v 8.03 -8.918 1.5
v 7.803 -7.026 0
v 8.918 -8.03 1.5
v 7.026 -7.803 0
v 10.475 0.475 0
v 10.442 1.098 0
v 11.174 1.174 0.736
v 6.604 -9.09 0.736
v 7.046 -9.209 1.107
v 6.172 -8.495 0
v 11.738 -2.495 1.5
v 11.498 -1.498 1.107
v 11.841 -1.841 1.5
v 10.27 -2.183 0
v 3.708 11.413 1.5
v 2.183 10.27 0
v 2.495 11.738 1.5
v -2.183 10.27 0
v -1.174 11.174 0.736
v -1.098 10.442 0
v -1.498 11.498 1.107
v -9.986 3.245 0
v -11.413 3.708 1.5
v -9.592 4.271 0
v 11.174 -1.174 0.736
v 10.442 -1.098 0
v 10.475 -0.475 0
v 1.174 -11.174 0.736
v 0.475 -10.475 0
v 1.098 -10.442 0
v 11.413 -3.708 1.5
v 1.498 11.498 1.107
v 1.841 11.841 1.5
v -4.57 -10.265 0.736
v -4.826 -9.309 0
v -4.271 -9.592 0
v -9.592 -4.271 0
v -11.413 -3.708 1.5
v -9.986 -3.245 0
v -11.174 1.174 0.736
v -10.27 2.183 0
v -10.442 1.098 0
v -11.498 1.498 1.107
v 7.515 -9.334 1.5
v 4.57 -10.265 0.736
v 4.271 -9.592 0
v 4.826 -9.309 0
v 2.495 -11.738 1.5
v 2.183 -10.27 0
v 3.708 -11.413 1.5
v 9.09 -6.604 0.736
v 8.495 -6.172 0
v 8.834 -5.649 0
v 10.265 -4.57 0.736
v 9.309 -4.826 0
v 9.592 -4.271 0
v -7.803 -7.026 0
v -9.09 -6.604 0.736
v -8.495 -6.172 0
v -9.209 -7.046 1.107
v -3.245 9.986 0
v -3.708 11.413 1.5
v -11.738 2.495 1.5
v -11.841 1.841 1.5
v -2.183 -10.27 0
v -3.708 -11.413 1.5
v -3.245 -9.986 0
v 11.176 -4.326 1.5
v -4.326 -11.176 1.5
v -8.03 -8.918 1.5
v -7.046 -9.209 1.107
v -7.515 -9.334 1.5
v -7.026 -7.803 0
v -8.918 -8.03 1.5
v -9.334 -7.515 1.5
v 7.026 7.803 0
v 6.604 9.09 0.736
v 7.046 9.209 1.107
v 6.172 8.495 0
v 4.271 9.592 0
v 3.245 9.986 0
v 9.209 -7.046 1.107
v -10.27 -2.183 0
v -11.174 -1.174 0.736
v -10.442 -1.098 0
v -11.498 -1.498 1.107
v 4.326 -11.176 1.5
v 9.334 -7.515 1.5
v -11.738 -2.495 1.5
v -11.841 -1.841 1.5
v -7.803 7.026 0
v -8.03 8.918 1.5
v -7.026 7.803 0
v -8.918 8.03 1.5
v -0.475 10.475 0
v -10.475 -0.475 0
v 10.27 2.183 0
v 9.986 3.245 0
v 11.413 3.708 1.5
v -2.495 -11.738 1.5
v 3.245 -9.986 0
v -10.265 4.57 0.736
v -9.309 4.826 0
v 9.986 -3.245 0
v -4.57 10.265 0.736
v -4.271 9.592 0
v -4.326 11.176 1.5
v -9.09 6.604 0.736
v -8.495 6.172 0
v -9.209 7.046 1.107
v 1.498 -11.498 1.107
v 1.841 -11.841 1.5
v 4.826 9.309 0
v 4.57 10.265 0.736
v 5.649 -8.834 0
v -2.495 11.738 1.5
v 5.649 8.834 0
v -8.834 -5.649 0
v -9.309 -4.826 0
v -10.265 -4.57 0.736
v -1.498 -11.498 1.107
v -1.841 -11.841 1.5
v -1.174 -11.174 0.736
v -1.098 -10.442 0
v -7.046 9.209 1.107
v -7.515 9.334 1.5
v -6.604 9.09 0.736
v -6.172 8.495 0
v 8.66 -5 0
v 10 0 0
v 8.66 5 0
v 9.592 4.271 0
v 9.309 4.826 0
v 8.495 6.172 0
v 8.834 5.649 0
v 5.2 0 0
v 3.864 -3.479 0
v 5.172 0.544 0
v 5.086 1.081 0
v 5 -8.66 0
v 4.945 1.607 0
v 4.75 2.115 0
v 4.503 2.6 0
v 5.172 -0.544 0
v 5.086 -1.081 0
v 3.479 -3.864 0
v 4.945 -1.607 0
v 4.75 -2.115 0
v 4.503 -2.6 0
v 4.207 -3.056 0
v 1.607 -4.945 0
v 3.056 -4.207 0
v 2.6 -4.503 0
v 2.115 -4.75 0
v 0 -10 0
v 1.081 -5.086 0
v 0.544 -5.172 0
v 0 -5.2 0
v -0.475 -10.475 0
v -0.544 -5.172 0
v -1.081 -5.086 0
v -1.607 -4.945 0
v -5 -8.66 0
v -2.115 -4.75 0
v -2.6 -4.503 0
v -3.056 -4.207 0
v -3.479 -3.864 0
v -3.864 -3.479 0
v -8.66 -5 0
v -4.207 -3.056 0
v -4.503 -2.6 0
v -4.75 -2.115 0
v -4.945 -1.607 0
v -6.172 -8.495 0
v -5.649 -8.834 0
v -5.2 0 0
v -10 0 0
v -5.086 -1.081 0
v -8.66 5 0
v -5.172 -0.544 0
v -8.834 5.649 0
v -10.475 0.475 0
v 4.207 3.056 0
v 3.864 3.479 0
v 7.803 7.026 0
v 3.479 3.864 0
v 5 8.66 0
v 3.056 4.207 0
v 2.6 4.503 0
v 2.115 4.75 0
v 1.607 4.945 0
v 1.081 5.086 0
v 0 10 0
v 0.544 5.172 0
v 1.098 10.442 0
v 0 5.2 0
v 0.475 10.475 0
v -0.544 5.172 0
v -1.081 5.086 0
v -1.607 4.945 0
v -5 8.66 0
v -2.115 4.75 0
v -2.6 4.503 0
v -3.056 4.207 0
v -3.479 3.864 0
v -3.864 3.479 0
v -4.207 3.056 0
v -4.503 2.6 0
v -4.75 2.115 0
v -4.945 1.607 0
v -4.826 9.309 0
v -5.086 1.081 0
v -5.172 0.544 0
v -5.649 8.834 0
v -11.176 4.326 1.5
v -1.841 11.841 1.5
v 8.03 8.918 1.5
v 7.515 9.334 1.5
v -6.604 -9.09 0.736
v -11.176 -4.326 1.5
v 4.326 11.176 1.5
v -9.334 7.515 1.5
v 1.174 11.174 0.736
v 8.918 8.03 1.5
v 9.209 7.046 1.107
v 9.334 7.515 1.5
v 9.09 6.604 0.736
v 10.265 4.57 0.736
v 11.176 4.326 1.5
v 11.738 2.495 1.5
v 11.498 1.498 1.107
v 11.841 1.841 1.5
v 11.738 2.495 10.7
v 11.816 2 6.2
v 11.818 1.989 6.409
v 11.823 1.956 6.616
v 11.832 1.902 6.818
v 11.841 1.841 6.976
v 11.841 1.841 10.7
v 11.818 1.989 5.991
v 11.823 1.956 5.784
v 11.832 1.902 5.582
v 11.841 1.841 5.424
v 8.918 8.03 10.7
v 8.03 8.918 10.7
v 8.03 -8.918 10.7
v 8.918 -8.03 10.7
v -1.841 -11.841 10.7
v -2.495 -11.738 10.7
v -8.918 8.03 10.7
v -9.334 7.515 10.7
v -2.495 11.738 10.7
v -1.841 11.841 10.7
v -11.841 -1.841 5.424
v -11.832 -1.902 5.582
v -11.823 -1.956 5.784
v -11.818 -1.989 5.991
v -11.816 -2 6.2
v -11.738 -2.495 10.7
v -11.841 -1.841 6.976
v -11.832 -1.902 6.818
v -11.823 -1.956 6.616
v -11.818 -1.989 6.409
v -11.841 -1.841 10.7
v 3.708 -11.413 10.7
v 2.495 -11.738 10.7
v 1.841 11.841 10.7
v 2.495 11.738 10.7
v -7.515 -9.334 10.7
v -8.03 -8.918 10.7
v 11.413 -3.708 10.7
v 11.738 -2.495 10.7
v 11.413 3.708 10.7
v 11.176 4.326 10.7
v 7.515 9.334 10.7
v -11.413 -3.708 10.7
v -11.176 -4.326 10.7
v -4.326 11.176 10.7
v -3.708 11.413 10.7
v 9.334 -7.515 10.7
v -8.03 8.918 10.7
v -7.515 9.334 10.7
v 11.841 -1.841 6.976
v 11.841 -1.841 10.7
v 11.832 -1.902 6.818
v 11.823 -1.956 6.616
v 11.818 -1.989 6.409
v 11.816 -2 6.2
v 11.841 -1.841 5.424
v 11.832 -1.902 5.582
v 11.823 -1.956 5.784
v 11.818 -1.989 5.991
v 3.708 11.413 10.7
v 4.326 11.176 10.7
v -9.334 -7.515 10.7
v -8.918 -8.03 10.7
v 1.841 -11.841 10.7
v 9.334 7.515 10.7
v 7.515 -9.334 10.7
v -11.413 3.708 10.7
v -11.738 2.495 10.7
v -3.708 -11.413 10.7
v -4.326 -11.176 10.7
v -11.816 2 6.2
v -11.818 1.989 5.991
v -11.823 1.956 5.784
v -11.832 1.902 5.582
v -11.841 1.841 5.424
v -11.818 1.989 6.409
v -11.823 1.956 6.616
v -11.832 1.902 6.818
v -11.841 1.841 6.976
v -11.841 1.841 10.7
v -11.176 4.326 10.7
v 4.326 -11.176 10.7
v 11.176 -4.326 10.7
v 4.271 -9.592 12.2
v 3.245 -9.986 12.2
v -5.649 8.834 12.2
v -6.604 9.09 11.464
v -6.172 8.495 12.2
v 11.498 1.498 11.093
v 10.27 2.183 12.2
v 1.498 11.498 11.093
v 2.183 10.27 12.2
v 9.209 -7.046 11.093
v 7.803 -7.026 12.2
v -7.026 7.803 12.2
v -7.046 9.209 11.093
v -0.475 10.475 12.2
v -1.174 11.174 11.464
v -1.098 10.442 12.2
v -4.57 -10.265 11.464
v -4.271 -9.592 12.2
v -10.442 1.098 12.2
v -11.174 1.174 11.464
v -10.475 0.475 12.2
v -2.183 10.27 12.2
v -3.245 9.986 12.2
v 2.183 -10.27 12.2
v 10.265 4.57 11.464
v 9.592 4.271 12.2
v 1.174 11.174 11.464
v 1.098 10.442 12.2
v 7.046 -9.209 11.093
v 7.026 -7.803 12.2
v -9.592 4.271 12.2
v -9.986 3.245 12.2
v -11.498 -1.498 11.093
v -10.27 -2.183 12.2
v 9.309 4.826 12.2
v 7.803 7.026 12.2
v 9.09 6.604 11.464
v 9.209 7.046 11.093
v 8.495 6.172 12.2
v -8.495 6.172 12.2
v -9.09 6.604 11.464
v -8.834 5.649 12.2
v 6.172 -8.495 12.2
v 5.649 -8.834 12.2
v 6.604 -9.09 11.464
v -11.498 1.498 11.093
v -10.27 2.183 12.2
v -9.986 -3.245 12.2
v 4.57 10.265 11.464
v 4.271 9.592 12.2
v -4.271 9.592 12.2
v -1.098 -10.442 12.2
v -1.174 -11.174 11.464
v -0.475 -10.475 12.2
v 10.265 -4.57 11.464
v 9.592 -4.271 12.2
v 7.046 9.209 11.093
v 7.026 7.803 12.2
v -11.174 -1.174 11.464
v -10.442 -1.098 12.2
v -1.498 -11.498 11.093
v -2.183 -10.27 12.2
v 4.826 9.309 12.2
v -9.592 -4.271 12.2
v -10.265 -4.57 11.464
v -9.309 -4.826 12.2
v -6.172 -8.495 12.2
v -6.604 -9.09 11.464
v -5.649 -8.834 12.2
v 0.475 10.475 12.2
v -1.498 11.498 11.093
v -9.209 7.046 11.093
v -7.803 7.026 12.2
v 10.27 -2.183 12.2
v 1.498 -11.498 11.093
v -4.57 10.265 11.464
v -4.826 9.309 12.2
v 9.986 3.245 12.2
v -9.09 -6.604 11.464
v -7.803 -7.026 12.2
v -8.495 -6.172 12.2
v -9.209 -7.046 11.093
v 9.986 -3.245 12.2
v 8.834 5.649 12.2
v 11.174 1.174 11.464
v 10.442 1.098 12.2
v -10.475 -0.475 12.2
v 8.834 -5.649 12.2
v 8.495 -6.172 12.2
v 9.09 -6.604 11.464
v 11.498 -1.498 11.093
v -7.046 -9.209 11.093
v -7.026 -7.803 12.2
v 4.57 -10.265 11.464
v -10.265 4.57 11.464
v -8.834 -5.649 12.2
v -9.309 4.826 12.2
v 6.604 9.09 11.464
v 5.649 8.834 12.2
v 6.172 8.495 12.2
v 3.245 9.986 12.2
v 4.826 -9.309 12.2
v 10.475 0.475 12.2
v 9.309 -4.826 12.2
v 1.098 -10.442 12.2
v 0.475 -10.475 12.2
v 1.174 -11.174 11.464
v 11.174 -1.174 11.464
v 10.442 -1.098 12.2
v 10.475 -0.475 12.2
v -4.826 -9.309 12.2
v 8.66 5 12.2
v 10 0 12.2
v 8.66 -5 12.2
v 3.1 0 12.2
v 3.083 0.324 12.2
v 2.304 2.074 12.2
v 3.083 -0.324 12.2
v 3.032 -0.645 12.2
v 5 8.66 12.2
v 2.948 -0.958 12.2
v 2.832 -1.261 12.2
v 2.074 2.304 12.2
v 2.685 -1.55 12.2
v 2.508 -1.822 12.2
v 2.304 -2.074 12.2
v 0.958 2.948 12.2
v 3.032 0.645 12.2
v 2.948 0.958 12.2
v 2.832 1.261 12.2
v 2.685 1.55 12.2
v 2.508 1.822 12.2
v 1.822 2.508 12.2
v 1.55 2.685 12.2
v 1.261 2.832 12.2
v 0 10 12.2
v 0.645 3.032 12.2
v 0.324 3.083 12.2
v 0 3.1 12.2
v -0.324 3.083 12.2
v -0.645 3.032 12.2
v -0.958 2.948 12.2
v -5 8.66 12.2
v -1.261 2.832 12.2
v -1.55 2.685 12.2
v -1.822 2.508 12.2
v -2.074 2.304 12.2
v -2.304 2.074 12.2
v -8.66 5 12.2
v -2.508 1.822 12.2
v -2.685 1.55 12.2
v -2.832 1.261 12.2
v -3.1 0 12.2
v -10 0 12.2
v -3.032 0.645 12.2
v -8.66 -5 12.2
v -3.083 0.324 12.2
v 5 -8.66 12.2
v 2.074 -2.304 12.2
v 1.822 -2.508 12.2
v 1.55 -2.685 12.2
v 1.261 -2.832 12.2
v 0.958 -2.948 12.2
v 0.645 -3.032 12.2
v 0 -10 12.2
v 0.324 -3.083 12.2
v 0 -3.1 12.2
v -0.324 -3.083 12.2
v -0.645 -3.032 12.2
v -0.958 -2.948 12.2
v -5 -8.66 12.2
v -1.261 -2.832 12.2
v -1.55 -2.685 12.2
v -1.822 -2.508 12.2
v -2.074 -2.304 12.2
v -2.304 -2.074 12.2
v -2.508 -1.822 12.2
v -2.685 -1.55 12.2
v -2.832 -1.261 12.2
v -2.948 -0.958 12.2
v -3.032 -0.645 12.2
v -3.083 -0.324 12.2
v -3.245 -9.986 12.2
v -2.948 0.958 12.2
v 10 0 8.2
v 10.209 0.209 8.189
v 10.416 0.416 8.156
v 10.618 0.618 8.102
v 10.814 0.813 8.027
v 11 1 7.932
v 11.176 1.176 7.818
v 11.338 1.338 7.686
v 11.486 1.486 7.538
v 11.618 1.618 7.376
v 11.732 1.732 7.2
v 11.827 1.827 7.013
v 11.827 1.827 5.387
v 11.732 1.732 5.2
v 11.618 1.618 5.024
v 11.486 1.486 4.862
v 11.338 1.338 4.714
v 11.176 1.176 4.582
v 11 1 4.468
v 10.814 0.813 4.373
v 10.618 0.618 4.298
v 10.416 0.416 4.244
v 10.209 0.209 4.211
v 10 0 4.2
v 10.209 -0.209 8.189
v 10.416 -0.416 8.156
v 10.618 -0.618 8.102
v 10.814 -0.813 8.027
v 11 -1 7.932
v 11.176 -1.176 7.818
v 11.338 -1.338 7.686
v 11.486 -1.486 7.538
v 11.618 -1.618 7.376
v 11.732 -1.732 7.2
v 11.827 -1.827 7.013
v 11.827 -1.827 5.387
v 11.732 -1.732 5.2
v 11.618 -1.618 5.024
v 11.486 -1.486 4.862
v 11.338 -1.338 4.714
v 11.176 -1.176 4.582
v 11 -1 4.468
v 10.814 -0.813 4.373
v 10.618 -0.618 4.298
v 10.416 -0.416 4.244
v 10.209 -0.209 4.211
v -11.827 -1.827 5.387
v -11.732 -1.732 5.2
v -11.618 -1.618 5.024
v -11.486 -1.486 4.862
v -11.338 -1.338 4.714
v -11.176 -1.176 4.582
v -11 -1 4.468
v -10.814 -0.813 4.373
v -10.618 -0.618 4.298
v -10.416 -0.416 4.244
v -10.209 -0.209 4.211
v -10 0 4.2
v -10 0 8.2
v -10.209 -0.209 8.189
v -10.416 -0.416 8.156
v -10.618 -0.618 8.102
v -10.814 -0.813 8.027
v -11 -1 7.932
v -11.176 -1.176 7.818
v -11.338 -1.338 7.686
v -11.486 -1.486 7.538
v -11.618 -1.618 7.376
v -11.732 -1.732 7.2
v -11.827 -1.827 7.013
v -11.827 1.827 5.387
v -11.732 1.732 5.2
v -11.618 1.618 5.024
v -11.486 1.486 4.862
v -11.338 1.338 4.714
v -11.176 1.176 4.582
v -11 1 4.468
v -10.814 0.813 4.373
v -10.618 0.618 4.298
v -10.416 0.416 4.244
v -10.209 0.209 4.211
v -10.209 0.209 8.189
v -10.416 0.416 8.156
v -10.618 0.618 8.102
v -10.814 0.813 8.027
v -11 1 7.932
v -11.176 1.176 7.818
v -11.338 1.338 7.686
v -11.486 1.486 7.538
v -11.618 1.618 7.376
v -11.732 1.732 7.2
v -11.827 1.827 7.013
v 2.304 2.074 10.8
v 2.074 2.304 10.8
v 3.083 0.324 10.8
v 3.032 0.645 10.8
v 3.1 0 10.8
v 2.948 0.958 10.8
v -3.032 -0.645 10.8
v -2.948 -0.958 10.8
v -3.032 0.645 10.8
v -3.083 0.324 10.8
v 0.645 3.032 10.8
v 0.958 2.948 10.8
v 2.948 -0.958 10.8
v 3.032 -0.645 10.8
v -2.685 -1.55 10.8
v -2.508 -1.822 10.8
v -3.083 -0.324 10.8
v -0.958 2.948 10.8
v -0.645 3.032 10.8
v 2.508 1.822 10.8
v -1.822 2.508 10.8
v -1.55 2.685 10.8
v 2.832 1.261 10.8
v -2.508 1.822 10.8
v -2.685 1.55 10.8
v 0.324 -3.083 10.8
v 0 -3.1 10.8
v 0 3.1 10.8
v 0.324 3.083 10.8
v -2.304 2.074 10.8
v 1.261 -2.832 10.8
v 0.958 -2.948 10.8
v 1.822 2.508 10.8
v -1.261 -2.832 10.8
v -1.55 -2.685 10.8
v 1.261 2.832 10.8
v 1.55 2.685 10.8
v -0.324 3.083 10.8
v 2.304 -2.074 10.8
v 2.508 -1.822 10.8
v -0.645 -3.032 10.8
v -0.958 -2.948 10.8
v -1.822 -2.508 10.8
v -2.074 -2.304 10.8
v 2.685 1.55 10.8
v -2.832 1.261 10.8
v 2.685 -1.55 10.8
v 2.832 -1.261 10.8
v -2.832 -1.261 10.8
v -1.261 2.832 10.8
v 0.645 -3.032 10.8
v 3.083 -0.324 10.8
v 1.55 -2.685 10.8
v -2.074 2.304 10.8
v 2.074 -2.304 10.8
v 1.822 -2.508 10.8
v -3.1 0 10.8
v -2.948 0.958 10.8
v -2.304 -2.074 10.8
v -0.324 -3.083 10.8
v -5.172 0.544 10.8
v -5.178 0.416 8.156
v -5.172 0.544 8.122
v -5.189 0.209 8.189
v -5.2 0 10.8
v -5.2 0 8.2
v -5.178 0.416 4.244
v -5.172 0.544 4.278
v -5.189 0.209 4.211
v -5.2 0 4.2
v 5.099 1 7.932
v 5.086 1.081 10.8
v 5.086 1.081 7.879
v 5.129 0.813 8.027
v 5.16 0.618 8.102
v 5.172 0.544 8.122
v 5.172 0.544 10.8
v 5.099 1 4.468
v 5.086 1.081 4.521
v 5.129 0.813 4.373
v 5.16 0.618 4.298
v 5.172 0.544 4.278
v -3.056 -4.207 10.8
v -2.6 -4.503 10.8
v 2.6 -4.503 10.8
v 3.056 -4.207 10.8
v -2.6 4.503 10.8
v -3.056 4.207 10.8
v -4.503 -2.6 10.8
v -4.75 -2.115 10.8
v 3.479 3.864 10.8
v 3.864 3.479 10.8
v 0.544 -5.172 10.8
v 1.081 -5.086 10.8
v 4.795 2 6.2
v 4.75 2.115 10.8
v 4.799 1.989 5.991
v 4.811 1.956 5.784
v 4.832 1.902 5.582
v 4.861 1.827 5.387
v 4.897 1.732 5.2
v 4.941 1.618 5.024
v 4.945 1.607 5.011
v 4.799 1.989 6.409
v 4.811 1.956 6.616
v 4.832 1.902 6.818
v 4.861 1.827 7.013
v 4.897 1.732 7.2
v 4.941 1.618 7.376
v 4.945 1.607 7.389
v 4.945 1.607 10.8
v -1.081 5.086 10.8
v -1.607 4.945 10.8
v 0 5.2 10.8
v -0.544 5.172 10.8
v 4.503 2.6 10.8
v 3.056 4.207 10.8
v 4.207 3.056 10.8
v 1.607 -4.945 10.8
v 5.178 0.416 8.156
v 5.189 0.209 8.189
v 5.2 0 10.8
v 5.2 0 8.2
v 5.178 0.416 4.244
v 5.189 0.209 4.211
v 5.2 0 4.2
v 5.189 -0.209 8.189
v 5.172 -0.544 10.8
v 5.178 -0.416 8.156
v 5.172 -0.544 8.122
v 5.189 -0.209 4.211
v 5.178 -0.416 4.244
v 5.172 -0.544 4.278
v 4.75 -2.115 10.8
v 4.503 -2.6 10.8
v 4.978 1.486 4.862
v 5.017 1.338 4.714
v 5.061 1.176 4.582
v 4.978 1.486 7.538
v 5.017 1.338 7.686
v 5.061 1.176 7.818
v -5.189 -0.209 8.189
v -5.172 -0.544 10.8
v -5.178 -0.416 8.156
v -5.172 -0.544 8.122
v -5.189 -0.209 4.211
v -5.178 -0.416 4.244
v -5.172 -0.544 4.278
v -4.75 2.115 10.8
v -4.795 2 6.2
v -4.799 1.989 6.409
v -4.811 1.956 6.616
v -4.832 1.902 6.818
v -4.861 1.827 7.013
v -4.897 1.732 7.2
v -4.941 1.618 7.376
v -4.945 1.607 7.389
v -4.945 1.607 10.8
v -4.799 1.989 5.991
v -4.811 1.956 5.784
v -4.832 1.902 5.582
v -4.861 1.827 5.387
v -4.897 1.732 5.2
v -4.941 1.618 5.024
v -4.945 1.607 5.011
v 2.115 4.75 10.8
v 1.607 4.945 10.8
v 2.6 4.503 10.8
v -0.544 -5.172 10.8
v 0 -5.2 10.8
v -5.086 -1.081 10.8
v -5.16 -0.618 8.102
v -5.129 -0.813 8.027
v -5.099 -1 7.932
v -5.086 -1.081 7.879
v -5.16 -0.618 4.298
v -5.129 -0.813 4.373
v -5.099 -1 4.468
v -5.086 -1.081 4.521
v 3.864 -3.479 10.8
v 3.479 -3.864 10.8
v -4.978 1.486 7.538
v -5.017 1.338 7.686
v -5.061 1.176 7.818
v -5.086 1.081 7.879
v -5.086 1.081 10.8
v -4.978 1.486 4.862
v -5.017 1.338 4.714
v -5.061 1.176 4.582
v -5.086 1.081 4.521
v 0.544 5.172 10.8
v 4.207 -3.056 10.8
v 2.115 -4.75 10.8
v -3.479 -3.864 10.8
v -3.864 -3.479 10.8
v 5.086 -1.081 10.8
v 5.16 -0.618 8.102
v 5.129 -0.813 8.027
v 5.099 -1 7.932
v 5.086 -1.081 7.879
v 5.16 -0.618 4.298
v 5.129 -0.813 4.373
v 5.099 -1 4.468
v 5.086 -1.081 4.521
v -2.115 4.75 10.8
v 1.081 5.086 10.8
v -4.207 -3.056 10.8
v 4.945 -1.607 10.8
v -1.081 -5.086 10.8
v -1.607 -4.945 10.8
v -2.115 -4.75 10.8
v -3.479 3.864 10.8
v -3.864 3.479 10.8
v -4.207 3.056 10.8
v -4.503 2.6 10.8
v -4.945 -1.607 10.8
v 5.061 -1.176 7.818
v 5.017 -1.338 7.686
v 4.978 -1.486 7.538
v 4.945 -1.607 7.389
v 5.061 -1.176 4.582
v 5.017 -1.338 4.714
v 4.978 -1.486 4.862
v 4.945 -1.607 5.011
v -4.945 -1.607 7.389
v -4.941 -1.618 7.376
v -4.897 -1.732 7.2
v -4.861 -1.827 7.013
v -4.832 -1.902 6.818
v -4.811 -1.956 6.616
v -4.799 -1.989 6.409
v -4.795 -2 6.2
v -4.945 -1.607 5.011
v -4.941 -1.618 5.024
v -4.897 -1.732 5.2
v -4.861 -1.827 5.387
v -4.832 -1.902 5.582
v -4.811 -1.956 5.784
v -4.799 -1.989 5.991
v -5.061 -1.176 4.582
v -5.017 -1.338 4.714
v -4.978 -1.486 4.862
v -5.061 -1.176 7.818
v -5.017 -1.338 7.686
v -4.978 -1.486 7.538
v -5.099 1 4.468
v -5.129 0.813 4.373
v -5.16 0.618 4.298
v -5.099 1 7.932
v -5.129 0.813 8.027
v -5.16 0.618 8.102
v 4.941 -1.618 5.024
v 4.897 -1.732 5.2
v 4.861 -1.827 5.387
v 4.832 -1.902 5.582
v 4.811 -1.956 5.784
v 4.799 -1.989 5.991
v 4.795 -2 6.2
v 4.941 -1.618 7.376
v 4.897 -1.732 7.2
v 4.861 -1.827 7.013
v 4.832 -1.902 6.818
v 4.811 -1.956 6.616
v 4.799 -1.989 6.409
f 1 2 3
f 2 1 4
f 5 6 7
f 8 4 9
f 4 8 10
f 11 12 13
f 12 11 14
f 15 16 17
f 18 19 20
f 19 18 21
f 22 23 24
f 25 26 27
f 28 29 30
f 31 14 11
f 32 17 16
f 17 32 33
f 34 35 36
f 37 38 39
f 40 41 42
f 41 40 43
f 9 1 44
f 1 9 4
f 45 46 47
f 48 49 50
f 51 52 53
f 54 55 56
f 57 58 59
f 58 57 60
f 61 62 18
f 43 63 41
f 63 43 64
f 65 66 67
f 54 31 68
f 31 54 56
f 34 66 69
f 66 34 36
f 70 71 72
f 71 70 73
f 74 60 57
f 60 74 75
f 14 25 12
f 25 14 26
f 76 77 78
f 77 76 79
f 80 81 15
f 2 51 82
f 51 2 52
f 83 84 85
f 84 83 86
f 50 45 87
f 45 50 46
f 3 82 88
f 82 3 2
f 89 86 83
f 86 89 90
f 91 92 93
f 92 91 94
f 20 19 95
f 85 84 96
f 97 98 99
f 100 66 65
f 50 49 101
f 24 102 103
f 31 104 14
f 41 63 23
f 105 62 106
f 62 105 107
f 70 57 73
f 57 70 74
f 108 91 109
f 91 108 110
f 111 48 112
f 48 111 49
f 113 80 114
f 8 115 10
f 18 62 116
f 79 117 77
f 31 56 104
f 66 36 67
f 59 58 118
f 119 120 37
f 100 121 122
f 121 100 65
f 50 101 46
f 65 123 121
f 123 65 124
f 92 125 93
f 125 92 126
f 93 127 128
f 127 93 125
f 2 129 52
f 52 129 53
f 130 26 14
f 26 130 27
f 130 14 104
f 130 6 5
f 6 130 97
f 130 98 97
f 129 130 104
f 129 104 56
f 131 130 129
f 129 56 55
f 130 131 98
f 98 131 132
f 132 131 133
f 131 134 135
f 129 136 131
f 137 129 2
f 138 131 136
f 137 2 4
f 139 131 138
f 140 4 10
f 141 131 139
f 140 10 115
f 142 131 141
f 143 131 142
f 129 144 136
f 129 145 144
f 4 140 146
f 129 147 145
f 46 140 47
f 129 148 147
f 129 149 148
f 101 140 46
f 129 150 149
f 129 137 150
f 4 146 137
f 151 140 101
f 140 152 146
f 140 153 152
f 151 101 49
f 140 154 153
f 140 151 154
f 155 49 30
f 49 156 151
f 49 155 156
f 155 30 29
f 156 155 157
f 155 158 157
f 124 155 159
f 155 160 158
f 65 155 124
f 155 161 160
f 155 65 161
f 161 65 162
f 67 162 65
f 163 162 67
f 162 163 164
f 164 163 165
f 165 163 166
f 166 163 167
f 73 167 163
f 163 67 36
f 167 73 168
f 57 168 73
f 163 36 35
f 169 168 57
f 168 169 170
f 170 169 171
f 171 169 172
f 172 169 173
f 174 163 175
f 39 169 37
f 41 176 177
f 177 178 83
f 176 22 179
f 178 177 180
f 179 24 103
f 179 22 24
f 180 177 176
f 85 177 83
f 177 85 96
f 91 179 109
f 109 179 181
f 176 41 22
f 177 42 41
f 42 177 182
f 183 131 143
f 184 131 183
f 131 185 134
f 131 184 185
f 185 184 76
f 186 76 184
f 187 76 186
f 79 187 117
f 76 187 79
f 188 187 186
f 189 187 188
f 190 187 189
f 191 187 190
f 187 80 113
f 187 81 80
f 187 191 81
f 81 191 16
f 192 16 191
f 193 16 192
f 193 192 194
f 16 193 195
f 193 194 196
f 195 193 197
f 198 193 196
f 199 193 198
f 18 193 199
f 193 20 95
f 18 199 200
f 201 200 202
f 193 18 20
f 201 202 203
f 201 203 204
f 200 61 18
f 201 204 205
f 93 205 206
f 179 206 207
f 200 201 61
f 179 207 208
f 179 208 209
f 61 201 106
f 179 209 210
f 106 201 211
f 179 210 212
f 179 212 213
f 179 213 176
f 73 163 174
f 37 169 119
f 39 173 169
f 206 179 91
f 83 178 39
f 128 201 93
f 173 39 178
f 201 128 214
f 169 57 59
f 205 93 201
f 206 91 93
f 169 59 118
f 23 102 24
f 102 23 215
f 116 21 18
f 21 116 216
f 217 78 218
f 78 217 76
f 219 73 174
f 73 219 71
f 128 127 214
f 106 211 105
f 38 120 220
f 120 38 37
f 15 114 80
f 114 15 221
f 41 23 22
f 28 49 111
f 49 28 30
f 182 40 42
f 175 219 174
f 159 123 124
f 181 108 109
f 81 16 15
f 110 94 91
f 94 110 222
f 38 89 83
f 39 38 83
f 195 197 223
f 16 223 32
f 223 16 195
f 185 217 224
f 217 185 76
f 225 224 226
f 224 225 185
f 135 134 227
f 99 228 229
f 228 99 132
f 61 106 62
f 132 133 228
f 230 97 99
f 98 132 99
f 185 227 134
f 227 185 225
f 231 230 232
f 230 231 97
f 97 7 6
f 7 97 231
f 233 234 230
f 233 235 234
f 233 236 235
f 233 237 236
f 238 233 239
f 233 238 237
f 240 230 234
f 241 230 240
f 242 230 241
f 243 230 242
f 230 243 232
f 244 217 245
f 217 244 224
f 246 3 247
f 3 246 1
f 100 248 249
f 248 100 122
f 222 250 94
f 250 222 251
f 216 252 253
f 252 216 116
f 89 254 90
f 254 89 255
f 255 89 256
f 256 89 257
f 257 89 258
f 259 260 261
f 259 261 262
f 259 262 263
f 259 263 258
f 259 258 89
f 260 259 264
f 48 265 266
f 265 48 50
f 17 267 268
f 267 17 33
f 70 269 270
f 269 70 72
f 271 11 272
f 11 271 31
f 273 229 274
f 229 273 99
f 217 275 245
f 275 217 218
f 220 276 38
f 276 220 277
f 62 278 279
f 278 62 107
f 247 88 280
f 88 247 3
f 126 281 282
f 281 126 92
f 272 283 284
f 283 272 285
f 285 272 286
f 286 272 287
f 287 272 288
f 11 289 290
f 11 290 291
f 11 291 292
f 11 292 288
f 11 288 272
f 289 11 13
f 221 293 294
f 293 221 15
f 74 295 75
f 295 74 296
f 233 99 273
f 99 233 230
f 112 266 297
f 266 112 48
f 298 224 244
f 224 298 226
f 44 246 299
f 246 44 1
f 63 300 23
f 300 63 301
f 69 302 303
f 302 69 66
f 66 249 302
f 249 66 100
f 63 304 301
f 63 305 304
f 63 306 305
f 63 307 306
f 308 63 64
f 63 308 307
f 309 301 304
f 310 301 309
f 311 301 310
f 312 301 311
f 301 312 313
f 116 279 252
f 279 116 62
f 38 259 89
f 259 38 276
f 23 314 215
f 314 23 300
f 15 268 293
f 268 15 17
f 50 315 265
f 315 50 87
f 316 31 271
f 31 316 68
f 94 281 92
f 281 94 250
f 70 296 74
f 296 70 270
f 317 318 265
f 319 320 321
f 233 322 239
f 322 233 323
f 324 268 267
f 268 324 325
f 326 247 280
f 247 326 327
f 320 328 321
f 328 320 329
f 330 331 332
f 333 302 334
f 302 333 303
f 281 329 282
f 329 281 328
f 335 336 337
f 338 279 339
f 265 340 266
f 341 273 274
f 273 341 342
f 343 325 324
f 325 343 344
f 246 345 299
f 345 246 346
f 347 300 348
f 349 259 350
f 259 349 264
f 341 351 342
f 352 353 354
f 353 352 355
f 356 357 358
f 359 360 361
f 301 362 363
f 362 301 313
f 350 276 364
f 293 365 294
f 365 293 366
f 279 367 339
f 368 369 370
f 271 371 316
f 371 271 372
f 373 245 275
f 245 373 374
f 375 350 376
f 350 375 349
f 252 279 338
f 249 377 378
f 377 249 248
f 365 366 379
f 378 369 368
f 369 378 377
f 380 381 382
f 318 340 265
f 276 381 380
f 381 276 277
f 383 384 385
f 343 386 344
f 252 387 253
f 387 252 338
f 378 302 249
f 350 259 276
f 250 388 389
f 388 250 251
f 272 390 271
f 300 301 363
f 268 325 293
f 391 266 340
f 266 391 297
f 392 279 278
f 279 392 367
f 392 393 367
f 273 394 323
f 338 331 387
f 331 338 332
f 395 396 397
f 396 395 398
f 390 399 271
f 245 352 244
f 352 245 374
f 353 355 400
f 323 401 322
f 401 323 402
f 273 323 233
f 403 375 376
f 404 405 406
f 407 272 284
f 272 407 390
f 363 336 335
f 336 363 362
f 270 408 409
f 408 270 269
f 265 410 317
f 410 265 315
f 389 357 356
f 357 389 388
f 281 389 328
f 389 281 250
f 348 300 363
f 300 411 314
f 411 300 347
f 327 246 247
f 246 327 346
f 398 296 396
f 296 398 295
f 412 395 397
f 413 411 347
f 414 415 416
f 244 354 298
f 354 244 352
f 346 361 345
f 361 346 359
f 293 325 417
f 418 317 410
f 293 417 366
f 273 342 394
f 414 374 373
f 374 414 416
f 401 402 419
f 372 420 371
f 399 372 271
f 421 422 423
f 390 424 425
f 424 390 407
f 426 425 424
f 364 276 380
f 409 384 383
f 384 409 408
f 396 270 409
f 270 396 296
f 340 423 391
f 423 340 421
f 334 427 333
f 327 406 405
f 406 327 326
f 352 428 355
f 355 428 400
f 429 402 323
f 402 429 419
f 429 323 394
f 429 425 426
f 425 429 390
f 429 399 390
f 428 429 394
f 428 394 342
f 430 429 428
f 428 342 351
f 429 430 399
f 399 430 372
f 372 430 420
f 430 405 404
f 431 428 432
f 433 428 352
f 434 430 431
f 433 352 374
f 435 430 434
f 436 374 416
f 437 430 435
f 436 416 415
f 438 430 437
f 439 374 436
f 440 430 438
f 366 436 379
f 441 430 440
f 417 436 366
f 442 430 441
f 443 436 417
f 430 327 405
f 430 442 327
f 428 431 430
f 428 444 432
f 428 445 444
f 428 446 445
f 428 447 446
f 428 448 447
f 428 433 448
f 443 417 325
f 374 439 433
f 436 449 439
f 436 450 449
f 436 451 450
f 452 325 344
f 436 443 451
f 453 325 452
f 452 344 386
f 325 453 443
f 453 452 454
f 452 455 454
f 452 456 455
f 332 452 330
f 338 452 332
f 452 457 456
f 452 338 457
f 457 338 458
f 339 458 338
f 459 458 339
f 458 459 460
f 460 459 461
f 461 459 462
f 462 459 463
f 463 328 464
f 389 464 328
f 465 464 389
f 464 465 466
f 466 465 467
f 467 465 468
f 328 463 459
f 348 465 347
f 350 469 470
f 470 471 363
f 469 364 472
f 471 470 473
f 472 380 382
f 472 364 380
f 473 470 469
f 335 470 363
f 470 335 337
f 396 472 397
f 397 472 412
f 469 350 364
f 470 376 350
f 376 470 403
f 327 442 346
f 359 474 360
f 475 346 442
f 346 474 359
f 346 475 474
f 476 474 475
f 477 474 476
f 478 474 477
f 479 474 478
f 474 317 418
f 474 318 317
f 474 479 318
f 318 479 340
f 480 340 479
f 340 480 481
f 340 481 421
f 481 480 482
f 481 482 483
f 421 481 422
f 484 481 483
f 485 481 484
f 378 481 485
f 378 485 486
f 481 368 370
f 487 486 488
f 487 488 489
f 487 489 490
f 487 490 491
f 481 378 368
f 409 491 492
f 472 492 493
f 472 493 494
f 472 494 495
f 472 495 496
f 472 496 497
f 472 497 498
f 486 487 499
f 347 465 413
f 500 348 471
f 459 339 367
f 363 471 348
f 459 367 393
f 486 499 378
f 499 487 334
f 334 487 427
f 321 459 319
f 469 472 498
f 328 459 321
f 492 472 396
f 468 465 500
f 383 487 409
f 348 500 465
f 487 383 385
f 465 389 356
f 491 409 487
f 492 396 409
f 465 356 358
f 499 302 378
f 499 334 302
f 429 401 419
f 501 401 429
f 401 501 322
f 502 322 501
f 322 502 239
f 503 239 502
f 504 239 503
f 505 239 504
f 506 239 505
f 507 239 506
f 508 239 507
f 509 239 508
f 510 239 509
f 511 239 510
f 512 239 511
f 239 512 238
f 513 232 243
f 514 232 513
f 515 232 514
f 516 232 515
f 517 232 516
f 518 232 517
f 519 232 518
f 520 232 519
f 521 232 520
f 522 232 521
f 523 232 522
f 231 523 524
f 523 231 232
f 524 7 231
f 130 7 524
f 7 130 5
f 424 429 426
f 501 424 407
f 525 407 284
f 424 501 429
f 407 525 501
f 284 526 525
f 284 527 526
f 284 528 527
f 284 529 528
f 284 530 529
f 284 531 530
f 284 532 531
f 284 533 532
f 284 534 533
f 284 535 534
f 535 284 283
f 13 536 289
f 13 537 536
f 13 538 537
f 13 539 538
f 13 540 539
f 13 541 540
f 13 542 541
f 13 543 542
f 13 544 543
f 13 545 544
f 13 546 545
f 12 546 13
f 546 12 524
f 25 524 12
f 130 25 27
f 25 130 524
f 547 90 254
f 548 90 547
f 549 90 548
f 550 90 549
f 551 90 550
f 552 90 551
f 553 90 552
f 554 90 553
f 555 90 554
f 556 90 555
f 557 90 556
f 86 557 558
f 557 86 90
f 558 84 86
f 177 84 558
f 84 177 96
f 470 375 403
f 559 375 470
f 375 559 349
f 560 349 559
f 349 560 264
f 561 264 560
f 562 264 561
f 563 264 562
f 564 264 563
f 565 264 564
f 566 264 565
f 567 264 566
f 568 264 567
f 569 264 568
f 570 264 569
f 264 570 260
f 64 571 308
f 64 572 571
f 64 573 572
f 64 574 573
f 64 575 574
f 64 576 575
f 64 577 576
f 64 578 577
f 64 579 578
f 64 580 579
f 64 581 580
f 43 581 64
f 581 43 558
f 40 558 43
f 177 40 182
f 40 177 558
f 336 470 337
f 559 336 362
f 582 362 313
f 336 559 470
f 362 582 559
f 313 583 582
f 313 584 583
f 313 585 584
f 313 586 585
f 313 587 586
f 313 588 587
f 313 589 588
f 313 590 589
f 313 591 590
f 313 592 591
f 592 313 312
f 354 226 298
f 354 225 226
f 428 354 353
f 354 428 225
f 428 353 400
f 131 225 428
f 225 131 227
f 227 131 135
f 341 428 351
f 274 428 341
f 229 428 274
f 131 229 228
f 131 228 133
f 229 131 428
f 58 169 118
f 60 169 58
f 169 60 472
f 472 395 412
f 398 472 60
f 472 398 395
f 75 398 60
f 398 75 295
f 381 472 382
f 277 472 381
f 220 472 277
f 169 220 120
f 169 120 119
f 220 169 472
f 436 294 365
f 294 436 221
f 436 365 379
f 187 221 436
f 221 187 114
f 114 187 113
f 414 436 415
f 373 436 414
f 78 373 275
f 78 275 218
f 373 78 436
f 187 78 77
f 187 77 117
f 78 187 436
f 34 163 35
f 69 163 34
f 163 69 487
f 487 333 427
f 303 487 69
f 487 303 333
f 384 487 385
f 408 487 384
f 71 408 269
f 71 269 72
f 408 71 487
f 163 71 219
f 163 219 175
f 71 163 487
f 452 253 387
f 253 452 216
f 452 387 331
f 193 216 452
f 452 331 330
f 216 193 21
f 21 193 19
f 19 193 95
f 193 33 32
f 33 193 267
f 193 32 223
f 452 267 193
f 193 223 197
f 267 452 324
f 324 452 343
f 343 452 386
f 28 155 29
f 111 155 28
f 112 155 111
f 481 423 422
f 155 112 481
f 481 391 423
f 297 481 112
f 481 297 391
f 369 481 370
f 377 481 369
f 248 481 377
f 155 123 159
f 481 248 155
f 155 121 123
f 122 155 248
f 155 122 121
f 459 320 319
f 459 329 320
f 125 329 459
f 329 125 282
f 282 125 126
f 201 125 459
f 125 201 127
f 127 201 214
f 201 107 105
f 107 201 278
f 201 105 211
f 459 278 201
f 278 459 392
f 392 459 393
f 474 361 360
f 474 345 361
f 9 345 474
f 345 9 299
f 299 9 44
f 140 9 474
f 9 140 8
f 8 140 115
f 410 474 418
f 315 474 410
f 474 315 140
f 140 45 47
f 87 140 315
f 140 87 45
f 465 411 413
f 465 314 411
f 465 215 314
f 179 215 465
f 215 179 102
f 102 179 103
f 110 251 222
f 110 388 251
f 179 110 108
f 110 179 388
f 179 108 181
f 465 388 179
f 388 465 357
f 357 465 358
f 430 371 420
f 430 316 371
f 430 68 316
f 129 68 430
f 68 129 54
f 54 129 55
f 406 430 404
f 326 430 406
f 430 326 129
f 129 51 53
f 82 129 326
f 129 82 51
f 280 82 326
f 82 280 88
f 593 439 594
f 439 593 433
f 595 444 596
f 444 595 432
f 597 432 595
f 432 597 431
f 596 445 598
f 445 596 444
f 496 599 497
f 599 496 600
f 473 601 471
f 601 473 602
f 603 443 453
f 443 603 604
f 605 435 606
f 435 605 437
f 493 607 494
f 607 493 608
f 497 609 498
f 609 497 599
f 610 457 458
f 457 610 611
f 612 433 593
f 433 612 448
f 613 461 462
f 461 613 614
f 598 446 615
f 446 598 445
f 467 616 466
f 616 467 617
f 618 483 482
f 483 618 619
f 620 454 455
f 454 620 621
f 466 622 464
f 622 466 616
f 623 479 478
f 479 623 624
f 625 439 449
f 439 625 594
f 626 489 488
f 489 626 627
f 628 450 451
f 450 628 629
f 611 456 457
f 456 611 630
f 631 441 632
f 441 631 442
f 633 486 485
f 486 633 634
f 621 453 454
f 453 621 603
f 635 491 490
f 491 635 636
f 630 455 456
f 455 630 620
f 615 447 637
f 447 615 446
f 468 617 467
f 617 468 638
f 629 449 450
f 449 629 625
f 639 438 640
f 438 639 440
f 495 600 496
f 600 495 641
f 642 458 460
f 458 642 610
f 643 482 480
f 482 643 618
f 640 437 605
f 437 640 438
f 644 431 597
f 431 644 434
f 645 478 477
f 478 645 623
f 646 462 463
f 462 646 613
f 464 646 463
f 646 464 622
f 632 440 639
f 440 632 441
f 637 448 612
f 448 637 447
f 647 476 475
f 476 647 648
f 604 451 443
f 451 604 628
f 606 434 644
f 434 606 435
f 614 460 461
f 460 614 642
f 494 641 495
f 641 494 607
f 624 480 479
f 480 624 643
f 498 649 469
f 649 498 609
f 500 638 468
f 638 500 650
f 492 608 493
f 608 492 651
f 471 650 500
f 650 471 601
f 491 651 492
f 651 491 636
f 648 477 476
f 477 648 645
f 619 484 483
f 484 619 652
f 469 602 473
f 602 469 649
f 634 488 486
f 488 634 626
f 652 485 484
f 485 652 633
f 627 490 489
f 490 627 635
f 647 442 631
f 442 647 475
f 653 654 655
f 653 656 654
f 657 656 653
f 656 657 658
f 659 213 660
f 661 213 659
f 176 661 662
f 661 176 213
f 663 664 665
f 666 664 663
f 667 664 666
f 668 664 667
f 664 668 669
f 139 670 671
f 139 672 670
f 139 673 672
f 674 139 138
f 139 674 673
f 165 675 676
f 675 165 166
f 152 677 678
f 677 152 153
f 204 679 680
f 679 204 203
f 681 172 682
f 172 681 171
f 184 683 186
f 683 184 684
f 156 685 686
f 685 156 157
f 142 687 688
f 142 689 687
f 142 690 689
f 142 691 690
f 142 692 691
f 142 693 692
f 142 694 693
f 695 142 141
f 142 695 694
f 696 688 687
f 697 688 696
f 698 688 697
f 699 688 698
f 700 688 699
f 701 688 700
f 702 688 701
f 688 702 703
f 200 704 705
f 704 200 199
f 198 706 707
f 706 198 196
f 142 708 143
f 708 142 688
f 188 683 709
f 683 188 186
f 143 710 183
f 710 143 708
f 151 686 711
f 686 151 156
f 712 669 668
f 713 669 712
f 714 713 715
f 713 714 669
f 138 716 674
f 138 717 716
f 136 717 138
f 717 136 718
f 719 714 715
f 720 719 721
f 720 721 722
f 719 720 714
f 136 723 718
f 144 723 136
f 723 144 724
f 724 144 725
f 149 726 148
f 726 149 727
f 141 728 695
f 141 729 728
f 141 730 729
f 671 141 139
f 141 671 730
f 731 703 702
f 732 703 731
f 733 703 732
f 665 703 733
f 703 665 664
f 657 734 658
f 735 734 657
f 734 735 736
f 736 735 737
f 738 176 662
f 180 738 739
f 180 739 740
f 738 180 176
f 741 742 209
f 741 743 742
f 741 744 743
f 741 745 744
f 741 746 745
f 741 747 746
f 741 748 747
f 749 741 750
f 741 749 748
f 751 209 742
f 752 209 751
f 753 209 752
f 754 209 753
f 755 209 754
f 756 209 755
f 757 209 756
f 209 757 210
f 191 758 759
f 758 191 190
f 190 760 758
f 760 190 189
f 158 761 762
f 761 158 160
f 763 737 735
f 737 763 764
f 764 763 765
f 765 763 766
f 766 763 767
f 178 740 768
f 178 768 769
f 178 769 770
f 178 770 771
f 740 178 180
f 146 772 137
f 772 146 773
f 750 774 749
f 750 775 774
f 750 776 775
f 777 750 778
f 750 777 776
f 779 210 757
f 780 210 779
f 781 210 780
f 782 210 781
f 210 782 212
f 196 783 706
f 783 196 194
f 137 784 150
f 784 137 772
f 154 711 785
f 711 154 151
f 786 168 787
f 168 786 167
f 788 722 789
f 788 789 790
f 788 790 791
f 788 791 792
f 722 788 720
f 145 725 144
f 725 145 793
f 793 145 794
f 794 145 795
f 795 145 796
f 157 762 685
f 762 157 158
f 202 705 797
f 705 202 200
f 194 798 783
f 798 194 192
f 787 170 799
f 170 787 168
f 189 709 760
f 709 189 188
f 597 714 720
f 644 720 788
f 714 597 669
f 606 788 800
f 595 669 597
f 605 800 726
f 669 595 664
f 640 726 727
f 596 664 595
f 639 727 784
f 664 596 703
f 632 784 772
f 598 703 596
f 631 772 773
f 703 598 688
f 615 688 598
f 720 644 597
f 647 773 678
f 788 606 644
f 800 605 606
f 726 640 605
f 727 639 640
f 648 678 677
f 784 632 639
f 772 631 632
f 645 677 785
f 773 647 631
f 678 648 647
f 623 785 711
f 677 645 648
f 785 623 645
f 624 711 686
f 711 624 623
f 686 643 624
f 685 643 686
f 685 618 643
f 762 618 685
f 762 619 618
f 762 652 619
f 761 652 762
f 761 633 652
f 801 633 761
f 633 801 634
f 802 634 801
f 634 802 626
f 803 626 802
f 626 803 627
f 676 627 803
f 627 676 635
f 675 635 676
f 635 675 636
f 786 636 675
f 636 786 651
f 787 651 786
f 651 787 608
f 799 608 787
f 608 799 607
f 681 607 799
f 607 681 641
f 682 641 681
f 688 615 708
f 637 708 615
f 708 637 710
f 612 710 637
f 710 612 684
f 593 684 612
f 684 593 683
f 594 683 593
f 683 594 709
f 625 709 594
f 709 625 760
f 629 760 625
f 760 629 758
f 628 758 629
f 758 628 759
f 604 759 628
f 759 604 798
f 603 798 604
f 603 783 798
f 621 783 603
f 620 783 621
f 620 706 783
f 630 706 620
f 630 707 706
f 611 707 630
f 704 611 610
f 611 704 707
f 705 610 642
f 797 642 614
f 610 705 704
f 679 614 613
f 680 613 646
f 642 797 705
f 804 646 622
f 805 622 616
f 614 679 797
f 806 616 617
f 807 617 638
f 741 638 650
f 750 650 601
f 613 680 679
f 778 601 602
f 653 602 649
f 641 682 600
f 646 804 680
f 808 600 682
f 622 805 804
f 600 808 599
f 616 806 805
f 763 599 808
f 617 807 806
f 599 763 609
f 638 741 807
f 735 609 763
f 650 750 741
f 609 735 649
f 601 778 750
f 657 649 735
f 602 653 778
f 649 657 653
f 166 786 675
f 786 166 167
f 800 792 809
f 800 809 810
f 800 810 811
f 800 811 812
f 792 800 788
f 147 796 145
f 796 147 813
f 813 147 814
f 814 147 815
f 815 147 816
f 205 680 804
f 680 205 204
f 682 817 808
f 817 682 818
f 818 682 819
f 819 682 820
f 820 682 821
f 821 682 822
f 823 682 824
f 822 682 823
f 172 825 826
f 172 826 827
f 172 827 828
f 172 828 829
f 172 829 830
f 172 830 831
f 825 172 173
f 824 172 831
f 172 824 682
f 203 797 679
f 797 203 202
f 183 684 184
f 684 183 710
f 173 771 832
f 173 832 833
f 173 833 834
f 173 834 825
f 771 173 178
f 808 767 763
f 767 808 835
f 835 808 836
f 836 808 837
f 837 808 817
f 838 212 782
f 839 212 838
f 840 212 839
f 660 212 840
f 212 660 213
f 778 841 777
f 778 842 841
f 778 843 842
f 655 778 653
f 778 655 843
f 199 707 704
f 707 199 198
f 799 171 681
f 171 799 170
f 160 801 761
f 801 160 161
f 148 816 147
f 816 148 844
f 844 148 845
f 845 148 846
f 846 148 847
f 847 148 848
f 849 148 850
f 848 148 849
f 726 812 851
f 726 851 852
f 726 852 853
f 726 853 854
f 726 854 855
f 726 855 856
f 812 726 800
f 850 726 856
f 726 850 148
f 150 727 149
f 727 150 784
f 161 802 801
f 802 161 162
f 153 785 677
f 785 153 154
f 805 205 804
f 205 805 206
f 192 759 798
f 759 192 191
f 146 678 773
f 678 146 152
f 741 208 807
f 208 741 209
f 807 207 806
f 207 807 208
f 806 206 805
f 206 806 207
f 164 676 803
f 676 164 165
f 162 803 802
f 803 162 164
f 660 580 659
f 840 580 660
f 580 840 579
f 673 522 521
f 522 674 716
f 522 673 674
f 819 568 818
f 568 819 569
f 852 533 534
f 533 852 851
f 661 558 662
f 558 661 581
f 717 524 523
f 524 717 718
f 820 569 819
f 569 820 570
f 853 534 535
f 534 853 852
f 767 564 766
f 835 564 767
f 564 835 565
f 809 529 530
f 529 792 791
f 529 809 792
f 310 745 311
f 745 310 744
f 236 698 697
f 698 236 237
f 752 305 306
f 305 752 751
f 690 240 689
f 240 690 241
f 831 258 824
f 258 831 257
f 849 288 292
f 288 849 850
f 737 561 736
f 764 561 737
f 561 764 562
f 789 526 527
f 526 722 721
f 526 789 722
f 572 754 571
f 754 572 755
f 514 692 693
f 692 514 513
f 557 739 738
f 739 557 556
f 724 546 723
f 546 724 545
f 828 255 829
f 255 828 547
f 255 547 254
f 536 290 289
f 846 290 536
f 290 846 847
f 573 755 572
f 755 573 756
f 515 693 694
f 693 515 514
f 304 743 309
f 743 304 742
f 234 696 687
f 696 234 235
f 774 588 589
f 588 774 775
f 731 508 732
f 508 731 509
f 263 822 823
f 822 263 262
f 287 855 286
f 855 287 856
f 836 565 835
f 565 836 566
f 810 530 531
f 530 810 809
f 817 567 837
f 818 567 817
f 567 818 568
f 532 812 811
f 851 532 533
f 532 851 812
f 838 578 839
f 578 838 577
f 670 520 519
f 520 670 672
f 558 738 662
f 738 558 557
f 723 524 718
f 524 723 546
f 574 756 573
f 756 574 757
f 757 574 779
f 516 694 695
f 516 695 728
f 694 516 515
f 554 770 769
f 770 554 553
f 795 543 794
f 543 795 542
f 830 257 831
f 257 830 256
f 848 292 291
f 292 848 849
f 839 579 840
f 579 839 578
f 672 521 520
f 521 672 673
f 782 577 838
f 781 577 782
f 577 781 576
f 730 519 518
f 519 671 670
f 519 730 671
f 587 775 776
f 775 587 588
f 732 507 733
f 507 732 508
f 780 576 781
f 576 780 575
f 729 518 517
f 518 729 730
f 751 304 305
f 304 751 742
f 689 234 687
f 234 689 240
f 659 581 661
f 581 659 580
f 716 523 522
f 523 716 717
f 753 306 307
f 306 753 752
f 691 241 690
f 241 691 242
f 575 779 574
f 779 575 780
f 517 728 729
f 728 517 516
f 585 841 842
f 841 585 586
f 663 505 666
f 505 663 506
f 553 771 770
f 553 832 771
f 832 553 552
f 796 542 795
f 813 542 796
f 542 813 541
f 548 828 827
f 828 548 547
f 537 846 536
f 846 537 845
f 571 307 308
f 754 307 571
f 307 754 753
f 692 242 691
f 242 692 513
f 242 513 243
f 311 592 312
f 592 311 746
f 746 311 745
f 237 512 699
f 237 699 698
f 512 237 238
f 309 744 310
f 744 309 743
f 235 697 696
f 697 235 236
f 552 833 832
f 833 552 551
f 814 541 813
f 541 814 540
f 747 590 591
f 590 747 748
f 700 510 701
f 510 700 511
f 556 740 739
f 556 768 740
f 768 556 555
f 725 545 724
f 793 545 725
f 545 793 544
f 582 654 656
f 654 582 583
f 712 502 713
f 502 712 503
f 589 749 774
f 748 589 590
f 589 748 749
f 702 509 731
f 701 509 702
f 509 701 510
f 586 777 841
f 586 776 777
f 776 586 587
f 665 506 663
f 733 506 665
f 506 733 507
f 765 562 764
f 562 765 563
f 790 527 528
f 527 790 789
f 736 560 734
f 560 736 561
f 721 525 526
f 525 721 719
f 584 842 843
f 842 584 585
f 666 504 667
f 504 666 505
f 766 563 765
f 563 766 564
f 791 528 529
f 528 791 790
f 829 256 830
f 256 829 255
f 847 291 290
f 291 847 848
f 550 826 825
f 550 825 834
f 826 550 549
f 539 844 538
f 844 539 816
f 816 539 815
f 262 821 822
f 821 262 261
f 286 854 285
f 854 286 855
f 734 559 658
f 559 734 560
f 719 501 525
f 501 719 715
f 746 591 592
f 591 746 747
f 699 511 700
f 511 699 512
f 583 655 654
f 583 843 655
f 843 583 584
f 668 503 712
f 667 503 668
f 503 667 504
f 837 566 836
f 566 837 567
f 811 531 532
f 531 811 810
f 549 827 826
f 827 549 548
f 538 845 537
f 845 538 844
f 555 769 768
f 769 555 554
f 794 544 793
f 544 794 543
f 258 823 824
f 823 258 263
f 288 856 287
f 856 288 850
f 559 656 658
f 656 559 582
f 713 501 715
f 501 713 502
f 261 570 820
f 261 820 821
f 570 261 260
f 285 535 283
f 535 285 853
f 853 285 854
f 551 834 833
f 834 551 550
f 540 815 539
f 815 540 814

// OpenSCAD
$fn=60;

vFocusWheel_d = 24;
vFocusWheel_h = 12.2;
vThread_d = 6.2;
vThread_h = vFocusWheel_h;

vThreadNut_d = 10.4;
vThreadNut_h = 10.8;
vThreadNut_offsetZ = 0;

vEdgecut = 1.5;


vLowerSegment_d1 = vFocusWheel_d - 2*vEdgecut;
vLowerSegment_d2 = vFocusWheel_d;
vLowerSegment_h = vEdgecut;
vLowerSegment_offsetZ = 0;

vMidSegment_d = vFocusWheel_d;
vMidSegment_h = vFocusWheel_h - 2*vEdgecut;
vMidSegment_offsetZ = vLowerSegment_h;

vUpperSegment_d1 = vFocusWheel_d;
vUpperSegment_d2 = vFocusWheel_d - 2*vEdgecut;
vUpperSegment_h = vEdgecut;
vUpperSegment_offsetZ = vLowerSegment_h+vMidSegment_h;

vLockingScrewHole_d = 4;
vLockingScrewHole_h = vFocusWheel_d;
vLockingScrewHole_offsetX = -vFocusWheel_d/2;
vLockingScrewHole_offsetZ = vFocusWheel_h-6;

vCutout_l = vFocusWheel_h;
vCutout_w = 4;
vCutout_h = 2;
vCutout_offsetX = vFocusWheel_d/2;
vCutout_offsetY = -vCutout_w/2;
vCutout_offsetZ = 0;


module roof(l, w, h){
    polyhedron(
        points=[
            [0,0,0],
            [l,0,0],
            [l,w,0],
            [0,w,0],
            [0,w/2,h],
            [l,w/2,h]
            ],
        faces=[
            [0,1,2,3],
            [0,4,1],
            [1,4,5,2],
            [2,5,3],
            [3,5,4,0]
            ]
            );
    };

//roof(20, 10, 15);

module wedge(l, w, h) {
    polyhedron(
            points=[
                [0,0,0],
                [l,0,0],
                [0,w,0],
                [0,0,h],
                [l,0,h],
                [0,w,h]
            ],
            faces=[
                [0,1,2],
                [0,3,4,1],
                [1,4,5,2],
                [2,5,3,0],
                [3,5,4]
            ]
    );
   };    
//wedge(20, 30, 40);

module tube(d1, d2, h) {
    difference() {
        cylinder(d=d1, h=h);
        cylinder(d=d2, h=h);
        }
    };
    



difference(){
    union(){
        cylinder(d1=vLowerSegment_d1, d2=vLowerSegment_d2, h=vLowerSegment_h);

        translate([0, 0, vMidSegment_offsetZ])
        cylinder(d=vMidSegment_d, h=vMidSegment_h);   
           
        translate([0, 0, vUpperSegment_offsetZ])   
        cylinder(d1=vUpperSegment_d1, d2=vUpperSegment_d2, h=vUpperSegment_h); 
    };    
    
    // thread hole
    cylinder(d=vThread_d, h=vThread_h);
    
    // thread nut hole
    translate([0, 0, vThreadNut_offsetZ])
        cylinder(d=vThreadNut_d, h=vThreadNut_h);
    
   
    
    // locking screw hole
    translate([vLockingScrewHole_offsetX, 0, vLockingScrewHole_offsetZ])
        rotate([0,90, 0])
            cylinder(d=vLockingScrewHole_d, h=vLockingScrewHole_h);
    
    
    for (i=[0:5]){
    rotate([0, 0, i*30])    
        union(){
        translate([vCutout_offsetX, vCutout_offsetY, vCutout_offsetZ])
            rotate([0, 270, 0])
                roof(vCutout_l, vCutout_w, vCutout_h);

        translate([-vCutout_offsetX, vCutout_offsetY, vCutout_offsetZ])
            rotate([0, 270, 0])
                roof(vCutout_l, vCutout_w, -vCutout_h);
        };
    };
    

};
